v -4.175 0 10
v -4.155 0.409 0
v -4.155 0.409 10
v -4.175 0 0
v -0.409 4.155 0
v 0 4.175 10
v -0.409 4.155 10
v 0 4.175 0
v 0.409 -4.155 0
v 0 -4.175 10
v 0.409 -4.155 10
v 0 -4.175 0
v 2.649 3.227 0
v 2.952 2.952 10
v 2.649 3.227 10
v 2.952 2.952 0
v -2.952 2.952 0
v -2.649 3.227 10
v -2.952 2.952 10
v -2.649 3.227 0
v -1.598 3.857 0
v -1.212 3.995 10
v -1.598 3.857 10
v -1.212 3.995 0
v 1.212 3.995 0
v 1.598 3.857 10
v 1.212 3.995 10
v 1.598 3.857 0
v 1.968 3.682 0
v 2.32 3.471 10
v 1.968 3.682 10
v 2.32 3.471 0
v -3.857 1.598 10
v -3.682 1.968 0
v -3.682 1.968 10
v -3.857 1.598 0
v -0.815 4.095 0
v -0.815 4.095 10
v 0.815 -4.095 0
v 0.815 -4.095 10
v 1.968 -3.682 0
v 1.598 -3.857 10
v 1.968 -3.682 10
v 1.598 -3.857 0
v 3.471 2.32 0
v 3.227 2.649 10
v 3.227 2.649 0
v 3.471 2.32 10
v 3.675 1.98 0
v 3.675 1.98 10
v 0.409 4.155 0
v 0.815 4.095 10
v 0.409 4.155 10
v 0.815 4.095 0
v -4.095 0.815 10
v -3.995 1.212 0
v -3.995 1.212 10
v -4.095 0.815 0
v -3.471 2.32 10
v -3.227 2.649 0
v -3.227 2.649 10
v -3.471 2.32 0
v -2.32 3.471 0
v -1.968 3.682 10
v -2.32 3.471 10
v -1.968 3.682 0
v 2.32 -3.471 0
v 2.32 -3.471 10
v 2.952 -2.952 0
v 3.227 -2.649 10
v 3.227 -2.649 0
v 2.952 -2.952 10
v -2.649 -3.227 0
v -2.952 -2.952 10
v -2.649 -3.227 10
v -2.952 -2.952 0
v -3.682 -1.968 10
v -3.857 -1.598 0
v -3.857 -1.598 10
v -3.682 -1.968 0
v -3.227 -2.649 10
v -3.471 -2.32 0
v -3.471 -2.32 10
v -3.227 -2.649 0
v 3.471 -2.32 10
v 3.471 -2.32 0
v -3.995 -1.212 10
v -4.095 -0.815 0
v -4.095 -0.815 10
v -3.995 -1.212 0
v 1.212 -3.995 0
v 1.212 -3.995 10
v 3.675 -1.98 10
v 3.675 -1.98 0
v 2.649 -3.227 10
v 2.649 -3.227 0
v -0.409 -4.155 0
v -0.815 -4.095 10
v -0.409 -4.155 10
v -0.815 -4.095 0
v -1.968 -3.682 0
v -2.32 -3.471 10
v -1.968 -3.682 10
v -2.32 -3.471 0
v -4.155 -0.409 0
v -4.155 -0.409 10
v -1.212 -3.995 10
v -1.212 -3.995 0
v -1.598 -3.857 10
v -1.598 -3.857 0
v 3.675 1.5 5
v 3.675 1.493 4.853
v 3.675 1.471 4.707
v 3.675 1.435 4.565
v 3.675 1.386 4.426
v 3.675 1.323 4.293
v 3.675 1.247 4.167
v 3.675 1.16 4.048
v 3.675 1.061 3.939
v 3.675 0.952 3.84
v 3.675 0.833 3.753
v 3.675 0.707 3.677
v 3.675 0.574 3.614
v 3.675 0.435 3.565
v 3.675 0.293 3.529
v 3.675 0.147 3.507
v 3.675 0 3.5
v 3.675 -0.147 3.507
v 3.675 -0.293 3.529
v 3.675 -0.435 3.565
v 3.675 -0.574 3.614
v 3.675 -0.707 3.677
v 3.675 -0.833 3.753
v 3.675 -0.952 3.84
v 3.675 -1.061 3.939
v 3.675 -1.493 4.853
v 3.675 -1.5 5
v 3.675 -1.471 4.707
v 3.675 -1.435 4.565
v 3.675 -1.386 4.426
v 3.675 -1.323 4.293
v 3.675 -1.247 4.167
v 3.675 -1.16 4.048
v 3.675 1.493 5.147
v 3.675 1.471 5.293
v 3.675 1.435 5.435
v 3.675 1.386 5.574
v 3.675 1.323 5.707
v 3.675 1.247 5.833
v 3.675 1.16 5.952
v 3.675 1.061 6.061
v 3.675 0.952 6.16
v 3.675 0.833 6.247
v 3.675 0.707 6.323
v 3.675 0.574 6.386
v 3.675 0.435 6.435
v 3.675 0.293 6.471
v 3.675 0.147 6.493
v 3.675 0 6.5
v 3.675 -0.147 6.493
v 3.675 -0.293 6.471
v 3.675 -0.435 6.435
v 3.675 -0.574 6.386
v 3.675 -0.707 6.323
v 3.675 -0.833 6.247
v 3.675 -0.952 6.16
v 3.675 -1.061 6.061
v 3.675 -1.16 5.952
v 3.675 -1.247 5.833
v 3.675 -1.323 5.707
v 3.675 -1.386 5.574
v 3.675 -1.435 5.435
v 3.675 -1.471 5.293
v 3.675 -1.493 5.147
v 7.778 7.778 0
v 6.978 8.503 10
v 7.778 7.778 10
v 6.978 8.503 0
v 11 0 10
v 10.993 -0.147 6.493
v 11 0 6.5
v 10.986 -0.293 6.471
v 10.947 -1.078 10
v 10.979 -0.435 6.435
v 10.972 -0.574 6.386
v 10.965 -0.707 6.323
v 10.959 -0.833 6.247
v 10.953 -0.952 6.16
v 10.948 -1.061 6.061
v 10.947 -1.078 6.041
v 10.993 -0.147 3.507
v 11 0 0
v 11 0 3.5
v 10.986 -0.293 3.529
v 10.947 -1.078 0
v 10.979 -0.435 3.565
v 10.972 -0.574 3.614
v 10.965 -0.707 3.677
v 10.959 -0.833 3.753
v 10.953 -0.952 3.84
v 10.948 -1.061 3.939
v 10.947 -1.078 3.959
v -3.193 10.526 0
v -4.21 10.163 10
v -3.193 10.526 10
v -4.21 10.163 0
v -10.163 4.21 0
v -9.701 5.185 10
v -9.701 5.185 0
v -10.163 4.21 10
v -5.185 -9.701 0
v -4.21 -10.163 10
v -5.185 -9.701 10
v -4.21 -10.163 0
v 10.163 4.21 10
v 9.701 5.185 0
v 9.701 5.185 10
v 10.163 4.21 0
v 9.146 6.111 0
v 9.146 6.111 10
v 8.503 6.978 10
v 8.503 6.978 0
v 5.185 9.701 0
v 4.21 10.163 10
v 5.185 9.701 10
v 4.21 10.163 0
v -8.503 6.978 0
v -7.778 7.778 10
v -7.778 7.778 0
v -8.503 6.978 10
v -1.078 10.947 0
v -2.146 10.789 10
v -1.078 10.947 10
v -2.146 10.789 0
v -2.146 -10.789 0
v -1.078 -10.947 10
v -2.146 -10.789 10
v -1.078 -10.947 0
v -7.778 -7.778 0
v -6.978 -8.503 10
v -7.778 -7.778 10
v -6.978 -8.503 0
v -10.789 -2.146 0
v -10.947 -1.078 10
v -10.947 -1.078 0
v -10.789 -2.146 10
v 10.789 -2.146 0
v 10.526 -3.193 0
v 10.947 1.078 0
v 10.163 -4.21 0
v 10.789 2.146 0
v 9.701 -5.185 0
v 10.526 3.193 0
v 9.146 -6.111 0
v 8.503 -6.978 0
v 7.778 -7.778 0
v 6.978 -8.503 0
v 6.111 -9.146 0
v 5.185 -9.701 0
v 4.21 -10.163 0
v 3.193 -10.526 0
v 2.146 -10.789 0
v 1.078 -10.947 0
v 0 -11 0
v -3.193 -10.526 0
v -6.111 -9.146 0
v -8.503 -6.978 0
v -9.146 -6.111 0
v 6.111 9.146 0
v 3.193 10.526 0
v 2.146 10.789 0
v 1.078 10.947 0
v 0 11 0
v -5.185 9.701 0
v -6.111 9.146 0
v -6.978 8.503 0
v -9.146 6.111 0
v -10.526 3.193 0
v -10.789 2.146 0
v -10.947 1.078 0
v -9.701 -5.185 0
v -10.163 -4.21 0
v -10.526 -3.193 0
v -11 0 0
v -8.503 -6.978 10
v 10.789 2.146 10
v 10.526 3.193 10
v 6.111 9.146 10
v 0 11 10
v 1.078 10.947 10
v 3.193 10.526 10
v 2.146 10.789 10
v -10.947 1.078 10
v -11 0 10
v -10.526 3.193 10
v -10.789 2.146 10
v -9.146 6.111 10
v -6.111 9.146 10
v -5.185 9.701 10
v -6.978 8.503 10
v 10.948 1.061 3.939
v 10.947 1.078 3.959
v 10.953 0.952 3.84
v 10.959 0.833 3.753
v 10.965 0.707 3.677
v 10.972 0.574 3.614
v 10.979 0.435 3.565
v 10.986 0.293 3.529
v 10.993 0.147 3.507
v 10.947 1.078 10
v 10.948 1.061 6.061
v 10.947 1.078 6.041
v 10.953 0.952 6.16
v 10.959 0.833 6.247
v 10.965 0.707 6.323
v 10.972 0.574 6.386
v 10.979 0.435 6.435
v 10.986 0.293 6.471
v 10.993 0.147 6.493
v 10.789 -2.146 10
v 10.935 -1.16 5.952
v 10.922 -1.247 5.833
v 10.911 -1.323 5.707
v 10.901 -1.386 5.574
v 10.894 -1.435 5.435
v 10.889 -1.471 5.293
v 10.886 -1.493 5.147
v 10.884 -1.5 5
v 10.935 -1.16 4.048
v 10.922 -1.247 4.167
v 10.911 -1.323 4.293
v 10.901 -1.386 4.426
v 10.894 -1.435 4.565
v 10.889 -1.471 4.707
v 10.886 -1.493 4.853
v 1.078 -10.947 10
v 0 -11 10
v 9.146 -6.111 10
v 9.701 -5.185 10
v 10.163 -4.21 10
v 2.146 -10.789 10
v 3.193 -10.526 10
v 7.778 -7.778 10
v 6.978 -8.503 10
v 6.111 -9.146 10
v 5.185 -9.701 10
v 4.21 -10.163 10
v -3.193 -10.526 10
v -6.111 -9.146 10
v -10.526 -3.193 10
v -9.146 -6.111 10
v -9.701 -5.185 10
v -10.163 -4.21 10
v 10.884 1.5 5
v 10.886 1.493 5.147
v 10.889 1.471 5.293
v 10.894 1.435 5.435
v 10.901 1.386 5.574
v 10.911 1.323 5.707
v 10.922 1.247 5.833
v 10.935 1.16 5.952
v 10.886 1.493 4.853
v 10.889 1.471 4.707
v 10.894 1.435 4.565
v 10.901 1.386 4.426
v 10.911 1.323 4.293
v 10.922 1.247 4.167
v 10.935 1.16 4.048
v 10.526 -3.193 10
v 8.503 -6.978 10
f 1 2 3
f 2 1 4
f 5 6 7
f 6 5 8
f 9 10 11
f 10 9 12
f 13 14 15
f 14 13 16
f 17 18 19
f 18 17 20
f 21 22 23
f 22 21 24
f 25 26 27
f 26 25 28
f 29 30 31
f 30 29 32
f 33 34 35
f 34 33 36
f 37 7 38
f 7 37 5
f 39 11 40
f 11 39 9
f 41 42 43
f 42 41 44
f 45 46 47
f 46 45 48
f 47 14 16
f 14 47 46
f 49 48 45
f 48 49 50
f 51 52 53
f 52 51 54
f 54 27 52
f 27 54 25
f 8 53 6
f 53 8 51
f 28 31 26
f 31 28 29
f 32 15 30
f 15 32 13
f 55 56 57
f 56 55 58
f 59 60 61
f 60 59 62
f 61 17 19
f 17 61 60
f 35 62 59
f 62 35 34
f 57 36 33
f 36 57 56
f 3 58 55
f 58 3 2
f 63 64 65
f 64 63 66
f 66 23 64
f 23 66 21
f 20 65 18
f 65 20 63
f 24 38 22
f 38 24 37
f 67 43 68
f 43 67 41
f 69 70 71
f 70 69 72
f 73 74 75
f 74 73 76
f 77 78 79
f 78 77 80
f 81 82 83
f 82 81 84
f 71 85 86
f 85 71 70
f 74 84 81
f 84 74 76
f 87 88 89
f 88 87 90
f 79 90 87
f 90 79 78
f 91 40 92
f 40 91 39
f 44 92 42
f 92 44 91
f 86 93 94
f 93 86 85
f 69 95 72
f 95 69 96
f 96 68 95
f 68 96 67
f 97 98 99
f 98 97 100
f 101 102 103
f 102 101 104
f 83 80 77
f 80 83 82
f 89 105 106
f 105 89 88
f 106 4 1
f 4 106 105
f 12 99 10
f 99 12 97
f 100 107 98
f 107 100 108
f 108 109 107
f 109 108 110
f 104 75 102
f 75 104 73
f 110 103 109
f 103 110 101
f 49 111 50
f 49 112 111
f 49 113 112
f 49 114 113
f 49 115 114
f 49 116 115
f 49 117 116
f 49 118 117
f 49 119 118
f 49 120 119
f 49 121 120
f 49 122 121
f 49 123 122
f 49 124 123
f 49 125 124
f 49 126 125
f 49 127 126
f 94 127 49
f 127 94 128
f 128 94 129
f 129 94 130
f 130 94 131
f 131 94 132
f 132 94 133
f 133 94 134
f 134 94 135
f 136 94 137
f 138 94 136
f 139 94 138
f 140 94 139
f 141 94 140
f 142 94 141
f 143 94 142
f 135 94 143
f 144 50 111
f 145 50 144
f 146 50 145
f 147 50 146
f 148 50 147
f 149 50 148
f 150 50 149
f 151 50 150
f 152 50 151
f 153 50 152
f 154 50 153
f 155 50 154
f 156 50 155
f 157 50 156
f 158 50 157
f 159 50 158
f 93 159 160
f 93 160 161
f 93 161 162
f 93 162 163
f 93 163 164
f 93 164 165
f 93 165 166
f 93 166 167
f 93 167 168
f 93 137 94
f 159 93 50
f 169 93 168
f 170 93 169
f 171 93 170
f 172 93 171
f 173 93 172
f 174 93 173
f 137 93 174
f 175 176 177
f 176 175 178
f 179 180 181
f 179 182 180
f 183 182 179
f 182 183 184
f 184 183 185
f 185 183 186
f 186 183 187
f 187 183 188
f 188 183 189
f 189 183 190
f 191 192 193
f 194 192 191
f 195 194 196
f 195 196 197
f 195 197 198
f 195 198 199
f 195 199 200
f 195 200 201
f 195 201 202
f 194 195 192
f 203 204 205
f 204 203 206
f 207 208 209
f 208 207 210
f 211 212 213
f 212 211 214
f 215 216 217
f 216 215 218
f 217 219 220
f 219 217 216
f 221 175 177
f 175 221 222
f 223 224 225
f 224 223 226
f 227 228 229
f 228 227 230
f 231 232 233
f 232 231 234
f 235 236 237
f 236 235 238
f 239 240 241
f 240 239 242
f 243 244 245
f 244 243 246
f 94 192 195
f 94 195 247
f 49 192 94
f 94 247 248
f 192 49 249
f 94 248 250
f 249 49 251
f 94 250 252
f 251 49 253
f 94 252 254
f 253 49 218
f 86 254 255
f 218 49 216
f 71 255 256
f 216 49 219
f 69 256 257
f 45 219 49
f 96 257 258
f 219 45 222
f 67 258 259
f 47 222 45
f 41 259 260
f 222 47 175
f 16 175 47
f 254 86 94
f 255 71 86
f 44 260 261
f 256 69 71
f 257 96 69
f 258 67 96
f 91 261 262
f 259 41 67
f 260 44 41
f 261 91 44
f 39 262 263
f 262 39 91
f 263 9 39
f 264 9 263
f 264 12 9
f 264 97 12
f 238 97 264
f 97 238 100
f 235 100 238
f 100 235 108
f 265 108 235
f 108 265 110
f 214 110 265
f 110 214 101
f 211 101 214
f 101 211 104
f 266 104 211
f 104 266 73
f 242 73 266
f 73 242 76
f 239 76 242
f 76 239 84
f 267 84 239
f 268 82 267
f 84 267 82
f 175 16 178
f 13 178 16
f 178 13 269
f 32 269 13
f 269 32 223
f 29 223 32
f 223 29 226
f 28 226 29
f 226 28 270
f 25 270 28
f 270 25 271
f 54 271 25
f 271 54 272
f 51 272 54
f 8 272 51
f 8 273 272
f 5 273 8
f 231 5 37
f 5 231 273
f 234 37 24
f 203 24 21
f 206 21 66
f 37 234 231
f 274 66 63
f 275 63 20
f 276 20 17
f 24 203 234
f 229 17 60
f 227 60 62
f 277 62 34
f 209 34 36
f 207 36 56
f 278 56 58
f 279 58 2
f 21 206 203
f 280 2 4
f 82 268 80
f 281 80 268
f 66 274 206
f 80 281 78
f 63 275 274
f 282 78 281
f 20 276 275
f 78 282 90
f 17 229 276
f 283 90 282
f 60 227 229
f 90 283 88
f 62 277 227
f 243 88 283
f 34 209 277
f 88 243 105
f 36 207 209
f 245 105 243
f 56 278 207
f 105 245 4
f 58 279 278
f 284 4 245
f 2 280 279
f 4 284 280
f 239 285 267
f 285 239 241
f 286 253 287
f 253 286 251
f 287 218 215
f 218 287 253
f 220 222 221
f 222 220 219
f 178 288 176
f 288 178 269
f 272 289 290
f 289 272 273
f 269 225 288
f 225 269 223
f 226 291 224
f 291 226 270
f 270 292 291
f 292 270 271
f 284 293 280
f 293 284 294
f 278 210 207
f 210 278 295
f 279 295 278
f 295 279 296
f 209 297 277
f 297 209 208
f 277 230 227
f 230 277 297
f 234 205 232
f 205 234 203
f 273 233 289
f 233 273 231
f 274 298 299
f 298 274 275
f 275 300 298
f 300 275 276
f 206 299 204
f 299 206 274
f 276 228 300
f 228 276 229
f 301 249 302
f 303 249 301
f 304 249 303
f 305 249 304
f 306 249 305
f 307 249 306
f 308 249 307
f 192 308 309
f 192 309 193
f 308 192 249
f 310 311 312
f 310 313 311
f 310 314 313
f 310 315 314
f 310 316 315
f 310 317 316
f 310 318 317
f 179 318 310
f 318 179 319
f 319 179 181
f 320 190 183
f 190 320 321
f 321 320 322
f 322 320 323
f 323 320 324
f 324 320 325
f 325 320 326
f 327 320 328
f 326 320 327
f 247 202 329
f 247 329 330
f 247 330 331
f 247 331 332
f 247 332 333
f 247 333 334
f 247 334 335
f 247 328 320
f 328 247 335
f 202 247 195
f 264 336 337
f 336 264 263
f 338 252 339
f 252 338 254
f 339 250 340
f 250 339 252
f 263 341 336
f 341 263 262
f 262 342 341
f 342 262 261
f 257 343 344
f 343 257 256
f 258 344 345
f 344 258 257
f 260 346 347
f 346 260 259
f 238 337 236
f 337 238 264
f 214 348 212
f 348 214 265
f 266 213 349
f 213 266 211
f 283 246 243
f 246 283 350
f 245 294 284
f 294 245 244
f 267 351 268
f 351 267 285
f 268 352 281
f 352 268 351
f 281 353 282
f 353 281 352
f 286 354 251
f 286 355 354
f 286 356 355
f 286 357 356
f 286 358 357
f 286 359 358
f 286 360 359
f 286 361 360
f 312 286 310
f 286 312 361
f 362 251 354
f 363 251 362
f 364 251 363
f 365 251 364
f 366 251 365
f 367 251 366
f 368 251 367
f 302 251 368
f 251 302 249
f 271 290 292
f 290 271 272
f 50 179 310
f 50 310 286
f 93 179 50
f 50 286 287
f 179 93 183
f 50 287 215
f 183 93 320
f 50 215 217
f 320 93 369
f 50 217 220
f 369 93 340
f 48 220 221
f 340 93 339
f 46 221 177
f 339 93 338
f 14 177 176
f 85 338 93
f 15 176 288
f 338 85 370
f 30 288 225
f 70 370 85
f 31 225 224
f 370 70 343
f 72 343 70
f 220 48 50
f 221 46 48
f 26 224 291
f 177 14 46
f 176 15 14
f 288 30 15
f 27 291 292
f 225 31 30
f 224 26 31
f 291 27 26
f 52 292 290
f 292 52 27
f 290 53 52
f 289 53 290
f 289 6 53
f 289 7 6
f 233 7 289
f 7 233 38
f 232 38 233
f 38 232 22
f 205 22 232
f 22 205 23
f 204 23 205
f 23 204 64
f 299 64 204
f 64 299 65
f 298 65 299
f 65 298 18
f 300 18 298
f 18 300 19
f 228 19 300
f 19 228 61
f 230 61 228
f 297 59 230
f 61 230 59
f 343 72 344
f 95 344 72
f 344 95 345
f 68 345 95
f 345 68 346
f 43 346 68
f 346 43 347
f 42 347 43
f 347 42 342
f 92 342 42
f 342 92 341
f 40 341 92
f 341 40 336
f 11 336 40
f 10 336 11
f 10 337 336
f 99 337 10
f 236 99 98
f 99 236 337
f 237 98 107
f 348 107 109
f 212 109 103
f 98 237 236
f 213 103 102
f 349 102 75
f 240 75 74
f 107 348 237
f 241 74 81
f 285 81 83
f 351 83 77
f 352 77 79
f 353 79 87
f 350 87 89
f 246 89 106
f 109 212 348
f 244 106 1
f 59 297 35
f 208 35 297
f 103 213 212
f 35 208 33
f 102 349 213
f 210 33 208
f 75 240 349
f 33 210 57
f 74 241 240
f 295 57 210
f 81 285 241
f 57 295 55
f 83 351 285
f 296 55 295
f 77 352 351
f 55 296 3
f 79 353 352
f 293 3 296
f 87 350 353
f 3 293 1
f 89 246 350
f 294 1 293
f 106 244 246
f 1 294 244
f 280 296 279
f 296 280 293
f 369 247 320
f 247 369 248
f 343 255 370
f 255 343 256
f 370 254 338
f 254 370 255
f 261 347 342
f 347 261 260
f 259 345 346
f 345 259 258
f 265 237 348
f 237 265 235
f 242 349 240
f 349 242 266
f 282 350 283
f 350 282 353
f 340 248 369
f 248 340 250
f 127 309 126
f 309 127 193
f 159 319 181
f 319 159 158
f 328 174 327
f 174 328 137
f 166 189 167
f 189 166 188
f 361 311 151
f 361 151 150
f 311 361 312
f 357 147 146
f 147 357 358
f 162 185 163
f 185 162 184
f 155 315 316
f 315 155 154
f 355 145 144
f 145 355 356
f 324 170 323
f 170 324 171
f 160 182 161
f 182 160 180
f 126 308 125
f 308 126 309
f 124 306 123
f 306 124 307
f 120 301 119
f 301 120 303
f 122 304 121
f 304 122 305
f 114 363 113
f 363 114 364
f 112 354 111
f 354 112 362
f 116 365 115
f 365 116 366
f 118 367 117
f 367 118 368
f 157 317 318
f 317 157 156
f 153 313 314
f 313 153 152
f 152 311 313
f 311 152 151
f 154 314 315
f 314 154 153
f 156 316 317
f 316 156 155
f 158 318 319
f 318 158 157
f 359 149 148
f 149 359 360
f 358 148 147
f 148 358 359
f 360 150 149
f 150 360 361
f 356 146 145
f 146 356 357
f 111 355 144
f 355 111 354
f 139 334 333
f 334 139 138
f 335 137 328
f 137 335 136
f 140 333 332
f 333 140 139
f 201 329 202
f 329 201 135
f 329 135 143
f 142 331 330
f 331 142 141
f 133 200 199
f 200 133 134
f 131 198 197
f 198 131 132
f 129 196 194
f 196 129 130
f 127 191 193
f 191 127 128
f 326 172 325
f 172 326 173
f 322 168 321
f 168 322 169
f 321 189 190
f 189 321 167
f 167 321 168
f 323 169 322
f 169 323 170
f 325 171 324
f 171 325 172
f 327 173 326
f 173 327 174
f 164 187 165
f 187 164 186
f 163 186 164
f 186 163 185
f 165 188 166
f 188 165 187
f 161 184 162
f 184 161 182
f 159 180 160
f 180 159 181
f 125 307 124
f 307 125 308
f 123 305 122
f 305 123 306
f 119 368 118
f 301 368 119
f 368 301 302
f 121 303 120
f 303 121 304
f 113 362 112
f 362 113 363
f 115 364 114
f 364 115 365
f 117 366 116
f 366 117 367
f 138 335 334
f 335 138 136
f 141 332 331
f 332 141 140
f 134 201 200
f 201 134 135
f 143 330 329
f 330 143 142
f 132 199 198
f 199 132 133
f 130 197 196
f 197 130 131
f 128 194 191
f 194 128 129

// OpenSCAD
// Gen-CU — shaft collar with D-flat bore (set screw bears on the flat); print x4
include <parameters.scad>;
$fn = 64;
// D-flat keyed bore: flat faces +X (angle 0 = magnet pocket 0 = index notch)
module dflat_bore(h) {
    intersection() {
        cylinder(d=shaft_bore, h=h);
        translate([-shaft_bore, -shaft_bore, 0]) cube([shaft_bore + dflat_x, 2*shaft_bore, h]);
    }
}

od = 22; h = collar_h; set_d = 3.0;
difference() {
    cylinder(d=od, h=h);
    translate([0, 0, -0.1]) dflat_bore(h + 0.2);
    translate([0, 0, h/2]) rotate([0, 90, 0]) cylinder(d=set_d, h=od);
}
